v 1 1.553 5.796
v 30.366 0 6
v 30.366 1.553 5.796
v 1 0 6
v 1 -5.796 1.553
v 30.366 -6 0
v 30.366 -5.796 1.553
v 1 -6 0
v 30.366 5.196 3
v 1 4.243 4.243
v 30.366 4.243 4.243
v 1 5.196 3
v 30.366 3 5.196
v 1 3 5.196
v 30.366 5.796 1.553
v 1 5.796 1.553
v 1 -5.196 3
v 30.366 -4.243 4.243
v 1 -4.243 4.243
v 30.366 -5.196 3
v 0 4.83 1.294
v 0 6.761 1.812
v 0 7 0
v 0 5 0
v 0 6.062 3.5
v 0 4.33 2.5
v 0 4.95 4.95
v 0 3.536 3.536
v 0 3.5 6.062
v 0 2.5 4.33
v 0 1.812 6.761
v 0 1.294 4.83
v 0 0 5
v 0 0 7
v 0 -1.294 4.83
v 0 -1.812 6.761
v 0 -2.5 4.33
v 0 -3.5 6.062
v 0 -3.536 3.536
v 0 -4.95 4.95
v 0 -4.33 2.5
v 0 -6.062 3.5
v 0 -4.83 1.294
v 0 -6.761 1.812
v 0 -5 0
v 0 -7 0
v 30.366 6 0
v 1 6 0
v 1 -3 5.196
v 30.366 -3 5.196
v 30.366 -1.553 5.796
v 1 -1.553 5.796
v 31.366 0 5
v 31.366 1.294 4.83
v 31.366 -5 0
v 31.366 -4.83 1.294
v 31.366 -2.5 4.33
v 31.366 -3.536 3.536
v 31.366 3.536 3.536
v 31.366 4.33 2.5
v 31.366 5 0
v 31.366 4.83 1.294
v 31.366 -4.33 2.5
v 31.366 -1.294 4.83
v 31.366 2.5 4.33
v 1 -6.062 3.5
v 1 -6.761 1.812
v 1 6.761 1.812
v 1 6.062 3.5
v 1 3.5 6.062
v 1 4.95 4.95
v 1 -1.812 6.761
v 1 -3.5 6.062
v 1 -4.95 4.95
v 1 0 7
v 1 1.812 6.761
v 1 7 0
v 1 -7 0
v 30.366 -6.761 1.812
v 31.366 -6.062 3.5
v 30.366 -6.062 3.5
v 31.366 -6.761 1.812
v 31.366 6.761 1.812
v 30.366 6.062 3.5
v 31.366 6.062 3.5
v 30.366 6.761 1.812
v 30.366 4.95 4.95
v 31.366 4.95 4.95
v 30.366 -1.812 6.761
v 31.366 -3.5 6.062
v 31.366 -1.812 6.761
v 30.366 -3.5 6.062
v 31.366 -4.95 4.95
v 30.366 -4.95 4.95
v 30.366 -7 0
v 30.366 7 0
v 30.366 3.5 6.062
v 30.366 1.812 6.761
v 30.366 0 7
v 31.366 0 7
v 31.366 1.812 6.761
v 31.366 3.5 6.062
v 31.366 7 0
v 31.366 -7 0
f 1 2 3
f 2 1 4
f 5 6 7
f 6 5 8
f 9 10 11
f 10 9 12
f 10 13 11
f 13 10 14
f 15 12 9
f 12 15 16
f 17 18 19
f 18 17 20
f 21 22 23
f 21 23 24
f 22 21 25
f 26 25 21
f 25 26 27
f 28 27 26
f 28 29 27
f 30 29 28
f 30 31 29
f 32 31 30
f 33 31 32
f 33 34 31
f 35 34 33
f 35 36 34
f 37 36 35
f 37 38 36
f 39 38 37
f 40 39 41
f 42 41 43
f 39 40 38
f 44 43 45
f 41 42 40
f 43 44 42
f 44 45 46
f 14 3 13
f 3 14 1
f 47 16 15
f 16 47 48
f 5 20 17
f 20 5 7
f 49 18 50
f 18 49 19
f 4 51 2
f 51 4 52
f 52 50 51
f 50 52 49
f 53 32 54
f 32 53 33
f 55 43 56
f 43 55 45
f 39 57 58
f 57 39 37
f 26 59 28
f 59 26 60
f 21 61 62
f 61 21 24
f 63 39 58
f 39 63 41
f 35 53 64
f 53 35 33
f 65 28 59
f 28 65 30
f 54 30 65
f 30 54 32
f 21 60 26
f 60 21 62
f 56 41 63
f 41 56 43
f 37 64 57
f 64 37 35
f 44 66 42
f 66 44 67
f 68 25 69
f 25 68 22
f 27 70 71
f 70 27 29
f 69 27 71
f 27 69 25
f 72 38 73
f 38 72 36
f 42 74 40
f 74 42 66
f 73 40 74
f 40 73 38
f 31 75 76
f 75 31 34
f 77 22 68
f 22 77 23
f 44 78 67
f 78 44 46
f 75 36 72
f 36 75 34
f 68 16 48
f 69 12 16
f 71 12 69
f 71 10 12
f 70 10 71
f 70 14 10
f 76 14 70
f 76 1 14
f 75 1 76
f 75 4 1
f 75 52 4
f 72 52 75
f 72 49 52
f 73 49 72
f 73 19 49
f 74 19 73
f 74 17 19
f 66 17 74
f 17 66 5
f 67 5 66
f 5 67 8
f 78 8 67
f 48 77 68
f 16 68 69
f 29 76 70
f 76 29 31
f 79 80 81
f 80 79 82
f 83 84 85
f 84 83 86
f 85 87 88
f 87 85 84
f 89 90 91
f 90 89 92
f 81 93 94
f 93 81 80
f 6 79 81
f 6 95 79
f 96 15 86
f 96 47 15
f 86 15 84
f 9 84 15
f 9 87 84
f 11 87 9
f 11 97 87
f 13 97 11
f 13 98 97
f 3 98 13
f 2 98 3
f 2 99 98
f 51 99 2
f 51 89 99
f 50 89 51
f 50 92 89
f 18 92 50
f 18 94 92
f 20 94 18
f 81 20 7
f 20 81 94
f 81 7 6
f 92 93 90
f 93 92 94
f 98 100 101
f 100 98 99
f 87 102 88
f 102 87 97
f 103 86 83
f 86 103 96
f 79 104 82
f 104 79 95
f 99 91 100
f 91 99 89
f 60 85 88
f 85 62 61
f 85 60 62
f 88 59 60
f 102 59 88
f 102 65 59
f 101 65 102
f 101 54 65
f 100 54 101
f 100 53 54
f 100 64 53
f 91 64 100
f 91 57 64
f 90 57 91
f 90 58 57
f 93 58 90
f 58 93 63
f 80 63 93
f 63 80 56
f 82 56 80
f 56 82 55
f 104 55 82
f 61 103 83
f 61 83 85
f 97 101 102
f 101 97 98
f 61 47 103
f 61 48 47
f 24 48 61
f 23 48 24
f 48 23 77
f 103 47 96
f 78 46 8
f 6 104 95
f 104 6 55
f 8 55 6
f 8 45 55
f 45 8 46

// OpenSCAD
// file: ../build_environments.scad
// build_environments.scad: modules to build level sections
//

module pool(diameter=10.0, wall_height=2.0, step_width=3.0, connections=[])
{
    difference() {
        union() {
        difference() {
            cylinder(h=0.5,r1=diameter+step_width,r2=diameter+step_width,$fn=48);
            translate([0,0,-0.1])
                cylinder(h=0.7,r1=diameter,r2=diameter,$fn=48);
        }
        difference() {
            cylinder(h=wall_height,r1=diameter+step_width+1.0,r2=diameter+step_width+1.0,$fn=48);
            translate([0,0,-0.1])
                cylinder(h=wall_height+0.2,r1=diameter+step_width,r2=diameter+step_width,$fn=48);
        }
        }
    
        for (c = connections)
        {
            rotate([0,90,0]) {
                angle = atan2(c[1],c[0]);
                rotate([-angle,0,0]) {
                    cylinder(h=diameter+5.0,r1=c[2],r2=c[2],$fn=48);
                }
            }
        }
    }
}

module straight(length=10.0, width=2.0, dy1=0.0, dy2=0.0, dz=0.0)
{
    dims = [0, 0, 0, 0, 0, (dz/length)];
    matrix = [
        [ 1, dims[0], dims[1], 0 ],
        [ dims[2], 1, dims[4], 0 ],
        [ dims[5], dims[3], 1, 0 ],
        [ 0, 0, 0, 1 ]
    ];
    multmatrix(matrix)
    difference() {
        translate([dy1,0,0])
        union() {
            rotate([0,90,0]) {
                difference() {
                    cylinder(h=(length-dy1-dy2),r1=width+1.0,r2=width+1.0,$fn=24);
                    translate([0,0,-0.1])
                        cylinder(h=(length-dy1-dy2+0.2),r1=width,r2=width,$fn=24);
                }
                difference() {
                    cylinder(h=1.0,r1=width+2.0,r2=width+2.0,$fn=24);
                    translate([0,0,-0.1])
                        cylinder(h=1.2,r1=width,r2=width,$fn=24);
                }
                translate([0,0,(length-dy1-dy2)-1.0]) {
                    difference() {
                        cylinder(h=1.0,r1=width+2.0,r2=width+2.0,$fn=24);
                        translate([0,0,-0.1])
                            cylinder(h=1.2,r1=width,r2=width,$fn=24);
                    }
                }
            }
        }
        translate([0,0,-(2*width+4.0)/2])
            cube([3*length,3*length,2*width+4.0],center=true);
    }
}

module curve(p0=[0,0], center=[0,0], dir=1, angle=0.0, width=2.0)
{
    radius = sqrt((p0[0]-center[0])*(p0[0]-center[0]) + (p0[1]-center[1])*(p0[1]-center[1]));
    if (dir == 0) {
        difference() {
            rotate([0,0,-90])
            difference() {
                rotate_extrude(angle = angle, convexity = 10, $fn=32)
                    translate([radius, 0, 0])
                        circle(r = width+1.0,$fn=24);
                rotate([0,0,-1.0])
                    rotate_extrude(angle = angle+2.0, convexity = 10, $fn=32)
                        translate([radius, 0, 0])
                            circle(r = width,$fn=24);
            }
            translate([0,0,-(2*width+4.0)/2])
                cube([5*radius,5*radius,2*width+4.0],center=true);
        }
    }
    else {
        difference() {
            rotate([0,0,90])
            difference() {
                rotate_extrude(angle = -angle, convexity = 10, $fn=32)
                    translate([radius, 0, 0])
                        circle(r = width+1.0,$fn=24);
                rotate([0,0,1.0])
                    rotate_extrude(angle = -angle-2.0, convexity = 10, $fn=32)
                        translate([radius, 0, 0])
                            circle(r = width,$fn=24);
            }
            translate([0,0,-(2*width+4.0)/2])
                cube([5*radius,5*radius,2*width+4.0],center=true);
        }
    }

}

// test pool
//pool(diameter=12.0000, wall_height=3.0000, step_width=3.0000, connections=[[0.0000,-26.0000,2.0000], [23.6074,0.0000,2.0000]]);

// test straight, slope
//straight(length=26.0000, width=2.0000, dy1=11.8322, dy2=6.7082, dz=0.0000);
//straight(length=29.1549, width=12.0000, dy1=0.0000, dy2=0.0000, dz=-15.0000);

// test curve
//curve(p0=[23.6074, 0.0000], center=[23.6074, 5.0000], dir=0, angle=60.1011, width=2.0000);
//curve(p0=[33.6426, 12.4219], center=[37.9771, 9.9295], dir=1, angle=120.4627, width=2.0000);
// main file
use <../build_environments.scad>;
straight(length=31.3655, width=5.0000, dy1=0.0000, dy2=0.0000, dz=0.0000);
